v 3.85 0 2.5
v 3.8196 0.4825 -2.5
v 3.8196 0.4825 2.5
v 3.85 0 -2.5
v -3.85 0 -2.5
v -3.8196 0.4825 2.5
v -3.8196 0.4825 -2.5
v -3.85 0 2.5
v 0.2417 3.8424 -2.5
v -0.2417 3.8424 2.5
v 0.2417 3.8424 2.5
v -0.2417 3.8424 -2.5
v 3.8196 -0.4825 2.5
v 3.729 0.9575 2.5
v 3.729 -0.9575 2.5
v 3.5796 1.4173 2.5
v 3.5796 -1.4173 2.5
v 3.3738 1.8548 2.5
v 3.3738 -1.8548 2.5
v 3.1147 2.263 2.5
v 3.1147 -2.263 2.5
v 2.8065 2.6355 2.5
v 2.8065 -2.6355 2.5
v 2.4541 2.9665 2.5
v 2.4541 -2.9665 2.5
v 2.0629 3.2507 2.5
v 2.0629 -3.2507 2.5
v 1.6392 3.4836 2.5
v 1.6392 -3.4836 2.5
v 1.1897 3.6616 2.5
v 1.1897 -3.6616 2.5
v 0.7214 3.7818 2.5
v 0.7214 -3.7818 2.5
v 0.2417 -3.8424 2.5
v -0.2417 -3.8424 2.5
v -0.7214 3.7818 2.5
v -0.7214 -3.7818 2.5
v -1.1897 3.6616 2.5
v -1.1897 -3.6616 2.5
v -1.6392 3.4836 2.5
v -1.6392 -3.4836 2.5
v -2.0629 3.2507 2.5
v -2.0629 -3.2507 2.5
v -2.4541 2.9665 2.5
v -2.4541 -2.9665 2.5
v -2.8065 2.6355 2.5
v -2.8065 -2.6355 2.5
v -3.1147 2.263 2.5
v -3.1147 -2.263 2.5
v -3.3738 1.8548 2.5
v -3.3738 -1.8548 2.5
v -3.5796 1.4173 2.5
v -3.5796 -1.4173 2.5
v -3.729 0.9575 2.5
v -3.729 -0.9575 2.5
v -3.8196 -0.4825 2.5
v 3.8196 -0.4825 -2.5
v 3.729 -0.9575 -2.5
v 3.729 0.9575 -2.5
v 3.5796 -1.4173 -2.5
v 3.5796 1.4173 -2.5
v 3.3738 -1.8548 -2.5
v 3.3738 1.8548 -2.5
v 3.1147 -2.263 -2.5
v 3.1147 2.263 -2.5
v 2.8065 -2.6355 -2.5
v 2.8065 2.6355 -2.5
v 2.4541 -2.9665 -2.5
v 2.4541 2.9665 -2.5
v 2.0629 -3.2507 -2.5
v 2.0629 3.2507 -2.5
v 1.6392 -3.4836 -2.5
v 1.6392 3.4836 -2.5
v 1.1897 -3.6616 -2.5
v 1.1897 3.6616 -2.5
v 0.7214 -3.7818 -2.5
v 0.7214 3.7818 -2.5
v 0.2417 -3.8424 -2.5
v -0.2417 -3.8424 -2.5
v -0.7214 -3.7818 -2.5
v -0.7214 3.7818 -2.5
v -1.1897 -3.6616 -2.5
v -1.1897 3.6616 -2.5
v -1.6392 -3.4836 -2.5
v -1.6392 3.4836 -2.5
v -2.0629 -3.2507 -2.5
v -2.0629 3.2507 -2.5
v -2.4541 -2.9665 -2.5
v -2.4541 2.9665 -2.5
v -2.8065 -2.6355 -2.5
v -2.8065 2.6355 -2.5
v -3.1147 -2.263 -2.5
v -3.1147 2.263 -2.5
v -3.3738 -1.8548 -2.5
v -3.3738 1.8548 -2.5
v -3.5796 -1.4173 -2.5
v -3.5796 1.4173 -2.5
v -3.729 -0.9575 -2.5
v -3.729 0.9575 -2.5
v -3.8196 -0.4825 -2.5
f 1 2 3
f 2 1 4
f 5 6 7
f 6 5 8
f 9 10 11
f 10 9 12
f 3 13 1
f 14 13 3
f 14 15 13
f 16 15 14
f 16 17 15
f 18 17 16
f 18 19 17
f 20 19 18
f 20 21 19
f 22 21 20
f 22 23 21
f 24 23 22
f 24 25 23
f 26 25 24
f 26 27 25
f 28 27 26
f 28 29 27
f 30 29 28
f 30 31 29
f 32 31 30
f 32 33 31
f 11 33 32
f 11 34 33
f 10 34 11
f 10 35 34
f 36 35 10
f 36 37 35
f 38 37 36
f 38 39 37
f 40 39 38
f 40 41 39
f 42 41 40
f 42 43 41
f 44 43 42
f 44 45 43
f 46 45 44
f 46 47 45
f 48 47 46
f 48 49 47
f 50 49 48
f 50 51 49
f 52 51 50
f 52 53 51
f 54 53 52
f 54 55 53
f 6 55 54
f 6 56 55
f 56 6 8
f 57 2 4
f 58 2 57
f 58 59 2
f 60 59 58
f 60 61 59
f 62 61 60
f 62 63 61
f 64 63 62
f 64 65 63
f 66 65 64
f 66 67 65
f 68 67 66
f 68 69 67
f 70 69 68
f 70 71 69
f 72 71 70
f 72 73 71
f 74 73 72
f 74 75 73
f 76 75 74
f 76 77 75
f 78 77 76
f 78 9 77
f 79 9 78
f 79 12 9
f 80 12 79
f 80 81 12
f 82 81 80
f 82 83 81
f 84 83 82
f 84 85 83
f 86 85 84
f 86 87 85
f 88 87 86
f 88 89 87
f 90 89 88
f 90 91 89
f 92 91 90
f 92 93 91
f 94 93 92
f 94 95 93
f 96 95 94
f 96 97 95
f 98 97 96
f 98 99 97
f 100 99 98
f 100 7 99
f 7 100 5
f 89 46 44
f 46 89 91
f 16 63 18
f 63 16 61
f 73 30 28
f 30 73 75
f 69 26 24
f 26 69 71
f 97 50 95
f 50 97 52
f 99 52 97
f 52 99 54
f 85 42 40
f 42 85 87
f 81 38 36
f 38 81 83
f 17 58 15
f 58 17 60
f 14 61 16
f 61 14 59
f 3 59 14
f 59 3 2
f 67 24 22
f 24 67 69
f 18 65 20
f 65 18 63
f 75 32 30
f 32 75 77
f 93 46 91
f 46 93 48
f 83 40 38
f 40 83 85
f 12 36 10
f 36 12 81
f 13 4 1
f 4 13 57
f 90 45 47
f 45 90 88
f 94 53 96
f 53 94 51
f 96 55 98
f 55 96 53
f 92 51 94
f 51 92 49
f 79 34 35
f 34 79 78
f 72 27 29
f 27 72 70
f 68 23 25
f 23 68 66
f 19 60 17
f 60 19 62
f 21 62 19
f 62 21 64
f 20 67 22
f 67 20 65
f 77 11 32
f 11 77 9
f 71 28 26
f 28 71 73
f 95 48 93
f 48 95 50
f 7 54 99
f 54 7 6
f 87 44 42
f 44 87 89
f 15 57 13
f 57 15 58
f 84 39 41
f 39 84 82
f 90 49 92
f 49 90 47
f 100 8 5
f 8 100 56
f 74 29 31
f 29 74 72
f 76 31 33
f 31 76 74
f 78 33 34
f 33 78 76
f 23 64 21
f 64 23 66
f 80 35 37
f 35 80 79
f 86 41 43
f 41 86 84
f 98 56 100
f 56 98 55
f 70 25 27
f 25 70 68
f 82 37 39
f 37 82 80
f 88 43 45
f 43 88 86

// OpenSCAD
$fn = 50;


difference() {
	union() {
		translate(v = [0, 0, -2.5000000000]) {
			cylinder(h = 5, r = 3.8500000000);
		}
	}
	union() {
		translate(v = [0, 0, -100.0000000000]) {
			cylinder(h = 200, r = 0);
		}
	}
}
